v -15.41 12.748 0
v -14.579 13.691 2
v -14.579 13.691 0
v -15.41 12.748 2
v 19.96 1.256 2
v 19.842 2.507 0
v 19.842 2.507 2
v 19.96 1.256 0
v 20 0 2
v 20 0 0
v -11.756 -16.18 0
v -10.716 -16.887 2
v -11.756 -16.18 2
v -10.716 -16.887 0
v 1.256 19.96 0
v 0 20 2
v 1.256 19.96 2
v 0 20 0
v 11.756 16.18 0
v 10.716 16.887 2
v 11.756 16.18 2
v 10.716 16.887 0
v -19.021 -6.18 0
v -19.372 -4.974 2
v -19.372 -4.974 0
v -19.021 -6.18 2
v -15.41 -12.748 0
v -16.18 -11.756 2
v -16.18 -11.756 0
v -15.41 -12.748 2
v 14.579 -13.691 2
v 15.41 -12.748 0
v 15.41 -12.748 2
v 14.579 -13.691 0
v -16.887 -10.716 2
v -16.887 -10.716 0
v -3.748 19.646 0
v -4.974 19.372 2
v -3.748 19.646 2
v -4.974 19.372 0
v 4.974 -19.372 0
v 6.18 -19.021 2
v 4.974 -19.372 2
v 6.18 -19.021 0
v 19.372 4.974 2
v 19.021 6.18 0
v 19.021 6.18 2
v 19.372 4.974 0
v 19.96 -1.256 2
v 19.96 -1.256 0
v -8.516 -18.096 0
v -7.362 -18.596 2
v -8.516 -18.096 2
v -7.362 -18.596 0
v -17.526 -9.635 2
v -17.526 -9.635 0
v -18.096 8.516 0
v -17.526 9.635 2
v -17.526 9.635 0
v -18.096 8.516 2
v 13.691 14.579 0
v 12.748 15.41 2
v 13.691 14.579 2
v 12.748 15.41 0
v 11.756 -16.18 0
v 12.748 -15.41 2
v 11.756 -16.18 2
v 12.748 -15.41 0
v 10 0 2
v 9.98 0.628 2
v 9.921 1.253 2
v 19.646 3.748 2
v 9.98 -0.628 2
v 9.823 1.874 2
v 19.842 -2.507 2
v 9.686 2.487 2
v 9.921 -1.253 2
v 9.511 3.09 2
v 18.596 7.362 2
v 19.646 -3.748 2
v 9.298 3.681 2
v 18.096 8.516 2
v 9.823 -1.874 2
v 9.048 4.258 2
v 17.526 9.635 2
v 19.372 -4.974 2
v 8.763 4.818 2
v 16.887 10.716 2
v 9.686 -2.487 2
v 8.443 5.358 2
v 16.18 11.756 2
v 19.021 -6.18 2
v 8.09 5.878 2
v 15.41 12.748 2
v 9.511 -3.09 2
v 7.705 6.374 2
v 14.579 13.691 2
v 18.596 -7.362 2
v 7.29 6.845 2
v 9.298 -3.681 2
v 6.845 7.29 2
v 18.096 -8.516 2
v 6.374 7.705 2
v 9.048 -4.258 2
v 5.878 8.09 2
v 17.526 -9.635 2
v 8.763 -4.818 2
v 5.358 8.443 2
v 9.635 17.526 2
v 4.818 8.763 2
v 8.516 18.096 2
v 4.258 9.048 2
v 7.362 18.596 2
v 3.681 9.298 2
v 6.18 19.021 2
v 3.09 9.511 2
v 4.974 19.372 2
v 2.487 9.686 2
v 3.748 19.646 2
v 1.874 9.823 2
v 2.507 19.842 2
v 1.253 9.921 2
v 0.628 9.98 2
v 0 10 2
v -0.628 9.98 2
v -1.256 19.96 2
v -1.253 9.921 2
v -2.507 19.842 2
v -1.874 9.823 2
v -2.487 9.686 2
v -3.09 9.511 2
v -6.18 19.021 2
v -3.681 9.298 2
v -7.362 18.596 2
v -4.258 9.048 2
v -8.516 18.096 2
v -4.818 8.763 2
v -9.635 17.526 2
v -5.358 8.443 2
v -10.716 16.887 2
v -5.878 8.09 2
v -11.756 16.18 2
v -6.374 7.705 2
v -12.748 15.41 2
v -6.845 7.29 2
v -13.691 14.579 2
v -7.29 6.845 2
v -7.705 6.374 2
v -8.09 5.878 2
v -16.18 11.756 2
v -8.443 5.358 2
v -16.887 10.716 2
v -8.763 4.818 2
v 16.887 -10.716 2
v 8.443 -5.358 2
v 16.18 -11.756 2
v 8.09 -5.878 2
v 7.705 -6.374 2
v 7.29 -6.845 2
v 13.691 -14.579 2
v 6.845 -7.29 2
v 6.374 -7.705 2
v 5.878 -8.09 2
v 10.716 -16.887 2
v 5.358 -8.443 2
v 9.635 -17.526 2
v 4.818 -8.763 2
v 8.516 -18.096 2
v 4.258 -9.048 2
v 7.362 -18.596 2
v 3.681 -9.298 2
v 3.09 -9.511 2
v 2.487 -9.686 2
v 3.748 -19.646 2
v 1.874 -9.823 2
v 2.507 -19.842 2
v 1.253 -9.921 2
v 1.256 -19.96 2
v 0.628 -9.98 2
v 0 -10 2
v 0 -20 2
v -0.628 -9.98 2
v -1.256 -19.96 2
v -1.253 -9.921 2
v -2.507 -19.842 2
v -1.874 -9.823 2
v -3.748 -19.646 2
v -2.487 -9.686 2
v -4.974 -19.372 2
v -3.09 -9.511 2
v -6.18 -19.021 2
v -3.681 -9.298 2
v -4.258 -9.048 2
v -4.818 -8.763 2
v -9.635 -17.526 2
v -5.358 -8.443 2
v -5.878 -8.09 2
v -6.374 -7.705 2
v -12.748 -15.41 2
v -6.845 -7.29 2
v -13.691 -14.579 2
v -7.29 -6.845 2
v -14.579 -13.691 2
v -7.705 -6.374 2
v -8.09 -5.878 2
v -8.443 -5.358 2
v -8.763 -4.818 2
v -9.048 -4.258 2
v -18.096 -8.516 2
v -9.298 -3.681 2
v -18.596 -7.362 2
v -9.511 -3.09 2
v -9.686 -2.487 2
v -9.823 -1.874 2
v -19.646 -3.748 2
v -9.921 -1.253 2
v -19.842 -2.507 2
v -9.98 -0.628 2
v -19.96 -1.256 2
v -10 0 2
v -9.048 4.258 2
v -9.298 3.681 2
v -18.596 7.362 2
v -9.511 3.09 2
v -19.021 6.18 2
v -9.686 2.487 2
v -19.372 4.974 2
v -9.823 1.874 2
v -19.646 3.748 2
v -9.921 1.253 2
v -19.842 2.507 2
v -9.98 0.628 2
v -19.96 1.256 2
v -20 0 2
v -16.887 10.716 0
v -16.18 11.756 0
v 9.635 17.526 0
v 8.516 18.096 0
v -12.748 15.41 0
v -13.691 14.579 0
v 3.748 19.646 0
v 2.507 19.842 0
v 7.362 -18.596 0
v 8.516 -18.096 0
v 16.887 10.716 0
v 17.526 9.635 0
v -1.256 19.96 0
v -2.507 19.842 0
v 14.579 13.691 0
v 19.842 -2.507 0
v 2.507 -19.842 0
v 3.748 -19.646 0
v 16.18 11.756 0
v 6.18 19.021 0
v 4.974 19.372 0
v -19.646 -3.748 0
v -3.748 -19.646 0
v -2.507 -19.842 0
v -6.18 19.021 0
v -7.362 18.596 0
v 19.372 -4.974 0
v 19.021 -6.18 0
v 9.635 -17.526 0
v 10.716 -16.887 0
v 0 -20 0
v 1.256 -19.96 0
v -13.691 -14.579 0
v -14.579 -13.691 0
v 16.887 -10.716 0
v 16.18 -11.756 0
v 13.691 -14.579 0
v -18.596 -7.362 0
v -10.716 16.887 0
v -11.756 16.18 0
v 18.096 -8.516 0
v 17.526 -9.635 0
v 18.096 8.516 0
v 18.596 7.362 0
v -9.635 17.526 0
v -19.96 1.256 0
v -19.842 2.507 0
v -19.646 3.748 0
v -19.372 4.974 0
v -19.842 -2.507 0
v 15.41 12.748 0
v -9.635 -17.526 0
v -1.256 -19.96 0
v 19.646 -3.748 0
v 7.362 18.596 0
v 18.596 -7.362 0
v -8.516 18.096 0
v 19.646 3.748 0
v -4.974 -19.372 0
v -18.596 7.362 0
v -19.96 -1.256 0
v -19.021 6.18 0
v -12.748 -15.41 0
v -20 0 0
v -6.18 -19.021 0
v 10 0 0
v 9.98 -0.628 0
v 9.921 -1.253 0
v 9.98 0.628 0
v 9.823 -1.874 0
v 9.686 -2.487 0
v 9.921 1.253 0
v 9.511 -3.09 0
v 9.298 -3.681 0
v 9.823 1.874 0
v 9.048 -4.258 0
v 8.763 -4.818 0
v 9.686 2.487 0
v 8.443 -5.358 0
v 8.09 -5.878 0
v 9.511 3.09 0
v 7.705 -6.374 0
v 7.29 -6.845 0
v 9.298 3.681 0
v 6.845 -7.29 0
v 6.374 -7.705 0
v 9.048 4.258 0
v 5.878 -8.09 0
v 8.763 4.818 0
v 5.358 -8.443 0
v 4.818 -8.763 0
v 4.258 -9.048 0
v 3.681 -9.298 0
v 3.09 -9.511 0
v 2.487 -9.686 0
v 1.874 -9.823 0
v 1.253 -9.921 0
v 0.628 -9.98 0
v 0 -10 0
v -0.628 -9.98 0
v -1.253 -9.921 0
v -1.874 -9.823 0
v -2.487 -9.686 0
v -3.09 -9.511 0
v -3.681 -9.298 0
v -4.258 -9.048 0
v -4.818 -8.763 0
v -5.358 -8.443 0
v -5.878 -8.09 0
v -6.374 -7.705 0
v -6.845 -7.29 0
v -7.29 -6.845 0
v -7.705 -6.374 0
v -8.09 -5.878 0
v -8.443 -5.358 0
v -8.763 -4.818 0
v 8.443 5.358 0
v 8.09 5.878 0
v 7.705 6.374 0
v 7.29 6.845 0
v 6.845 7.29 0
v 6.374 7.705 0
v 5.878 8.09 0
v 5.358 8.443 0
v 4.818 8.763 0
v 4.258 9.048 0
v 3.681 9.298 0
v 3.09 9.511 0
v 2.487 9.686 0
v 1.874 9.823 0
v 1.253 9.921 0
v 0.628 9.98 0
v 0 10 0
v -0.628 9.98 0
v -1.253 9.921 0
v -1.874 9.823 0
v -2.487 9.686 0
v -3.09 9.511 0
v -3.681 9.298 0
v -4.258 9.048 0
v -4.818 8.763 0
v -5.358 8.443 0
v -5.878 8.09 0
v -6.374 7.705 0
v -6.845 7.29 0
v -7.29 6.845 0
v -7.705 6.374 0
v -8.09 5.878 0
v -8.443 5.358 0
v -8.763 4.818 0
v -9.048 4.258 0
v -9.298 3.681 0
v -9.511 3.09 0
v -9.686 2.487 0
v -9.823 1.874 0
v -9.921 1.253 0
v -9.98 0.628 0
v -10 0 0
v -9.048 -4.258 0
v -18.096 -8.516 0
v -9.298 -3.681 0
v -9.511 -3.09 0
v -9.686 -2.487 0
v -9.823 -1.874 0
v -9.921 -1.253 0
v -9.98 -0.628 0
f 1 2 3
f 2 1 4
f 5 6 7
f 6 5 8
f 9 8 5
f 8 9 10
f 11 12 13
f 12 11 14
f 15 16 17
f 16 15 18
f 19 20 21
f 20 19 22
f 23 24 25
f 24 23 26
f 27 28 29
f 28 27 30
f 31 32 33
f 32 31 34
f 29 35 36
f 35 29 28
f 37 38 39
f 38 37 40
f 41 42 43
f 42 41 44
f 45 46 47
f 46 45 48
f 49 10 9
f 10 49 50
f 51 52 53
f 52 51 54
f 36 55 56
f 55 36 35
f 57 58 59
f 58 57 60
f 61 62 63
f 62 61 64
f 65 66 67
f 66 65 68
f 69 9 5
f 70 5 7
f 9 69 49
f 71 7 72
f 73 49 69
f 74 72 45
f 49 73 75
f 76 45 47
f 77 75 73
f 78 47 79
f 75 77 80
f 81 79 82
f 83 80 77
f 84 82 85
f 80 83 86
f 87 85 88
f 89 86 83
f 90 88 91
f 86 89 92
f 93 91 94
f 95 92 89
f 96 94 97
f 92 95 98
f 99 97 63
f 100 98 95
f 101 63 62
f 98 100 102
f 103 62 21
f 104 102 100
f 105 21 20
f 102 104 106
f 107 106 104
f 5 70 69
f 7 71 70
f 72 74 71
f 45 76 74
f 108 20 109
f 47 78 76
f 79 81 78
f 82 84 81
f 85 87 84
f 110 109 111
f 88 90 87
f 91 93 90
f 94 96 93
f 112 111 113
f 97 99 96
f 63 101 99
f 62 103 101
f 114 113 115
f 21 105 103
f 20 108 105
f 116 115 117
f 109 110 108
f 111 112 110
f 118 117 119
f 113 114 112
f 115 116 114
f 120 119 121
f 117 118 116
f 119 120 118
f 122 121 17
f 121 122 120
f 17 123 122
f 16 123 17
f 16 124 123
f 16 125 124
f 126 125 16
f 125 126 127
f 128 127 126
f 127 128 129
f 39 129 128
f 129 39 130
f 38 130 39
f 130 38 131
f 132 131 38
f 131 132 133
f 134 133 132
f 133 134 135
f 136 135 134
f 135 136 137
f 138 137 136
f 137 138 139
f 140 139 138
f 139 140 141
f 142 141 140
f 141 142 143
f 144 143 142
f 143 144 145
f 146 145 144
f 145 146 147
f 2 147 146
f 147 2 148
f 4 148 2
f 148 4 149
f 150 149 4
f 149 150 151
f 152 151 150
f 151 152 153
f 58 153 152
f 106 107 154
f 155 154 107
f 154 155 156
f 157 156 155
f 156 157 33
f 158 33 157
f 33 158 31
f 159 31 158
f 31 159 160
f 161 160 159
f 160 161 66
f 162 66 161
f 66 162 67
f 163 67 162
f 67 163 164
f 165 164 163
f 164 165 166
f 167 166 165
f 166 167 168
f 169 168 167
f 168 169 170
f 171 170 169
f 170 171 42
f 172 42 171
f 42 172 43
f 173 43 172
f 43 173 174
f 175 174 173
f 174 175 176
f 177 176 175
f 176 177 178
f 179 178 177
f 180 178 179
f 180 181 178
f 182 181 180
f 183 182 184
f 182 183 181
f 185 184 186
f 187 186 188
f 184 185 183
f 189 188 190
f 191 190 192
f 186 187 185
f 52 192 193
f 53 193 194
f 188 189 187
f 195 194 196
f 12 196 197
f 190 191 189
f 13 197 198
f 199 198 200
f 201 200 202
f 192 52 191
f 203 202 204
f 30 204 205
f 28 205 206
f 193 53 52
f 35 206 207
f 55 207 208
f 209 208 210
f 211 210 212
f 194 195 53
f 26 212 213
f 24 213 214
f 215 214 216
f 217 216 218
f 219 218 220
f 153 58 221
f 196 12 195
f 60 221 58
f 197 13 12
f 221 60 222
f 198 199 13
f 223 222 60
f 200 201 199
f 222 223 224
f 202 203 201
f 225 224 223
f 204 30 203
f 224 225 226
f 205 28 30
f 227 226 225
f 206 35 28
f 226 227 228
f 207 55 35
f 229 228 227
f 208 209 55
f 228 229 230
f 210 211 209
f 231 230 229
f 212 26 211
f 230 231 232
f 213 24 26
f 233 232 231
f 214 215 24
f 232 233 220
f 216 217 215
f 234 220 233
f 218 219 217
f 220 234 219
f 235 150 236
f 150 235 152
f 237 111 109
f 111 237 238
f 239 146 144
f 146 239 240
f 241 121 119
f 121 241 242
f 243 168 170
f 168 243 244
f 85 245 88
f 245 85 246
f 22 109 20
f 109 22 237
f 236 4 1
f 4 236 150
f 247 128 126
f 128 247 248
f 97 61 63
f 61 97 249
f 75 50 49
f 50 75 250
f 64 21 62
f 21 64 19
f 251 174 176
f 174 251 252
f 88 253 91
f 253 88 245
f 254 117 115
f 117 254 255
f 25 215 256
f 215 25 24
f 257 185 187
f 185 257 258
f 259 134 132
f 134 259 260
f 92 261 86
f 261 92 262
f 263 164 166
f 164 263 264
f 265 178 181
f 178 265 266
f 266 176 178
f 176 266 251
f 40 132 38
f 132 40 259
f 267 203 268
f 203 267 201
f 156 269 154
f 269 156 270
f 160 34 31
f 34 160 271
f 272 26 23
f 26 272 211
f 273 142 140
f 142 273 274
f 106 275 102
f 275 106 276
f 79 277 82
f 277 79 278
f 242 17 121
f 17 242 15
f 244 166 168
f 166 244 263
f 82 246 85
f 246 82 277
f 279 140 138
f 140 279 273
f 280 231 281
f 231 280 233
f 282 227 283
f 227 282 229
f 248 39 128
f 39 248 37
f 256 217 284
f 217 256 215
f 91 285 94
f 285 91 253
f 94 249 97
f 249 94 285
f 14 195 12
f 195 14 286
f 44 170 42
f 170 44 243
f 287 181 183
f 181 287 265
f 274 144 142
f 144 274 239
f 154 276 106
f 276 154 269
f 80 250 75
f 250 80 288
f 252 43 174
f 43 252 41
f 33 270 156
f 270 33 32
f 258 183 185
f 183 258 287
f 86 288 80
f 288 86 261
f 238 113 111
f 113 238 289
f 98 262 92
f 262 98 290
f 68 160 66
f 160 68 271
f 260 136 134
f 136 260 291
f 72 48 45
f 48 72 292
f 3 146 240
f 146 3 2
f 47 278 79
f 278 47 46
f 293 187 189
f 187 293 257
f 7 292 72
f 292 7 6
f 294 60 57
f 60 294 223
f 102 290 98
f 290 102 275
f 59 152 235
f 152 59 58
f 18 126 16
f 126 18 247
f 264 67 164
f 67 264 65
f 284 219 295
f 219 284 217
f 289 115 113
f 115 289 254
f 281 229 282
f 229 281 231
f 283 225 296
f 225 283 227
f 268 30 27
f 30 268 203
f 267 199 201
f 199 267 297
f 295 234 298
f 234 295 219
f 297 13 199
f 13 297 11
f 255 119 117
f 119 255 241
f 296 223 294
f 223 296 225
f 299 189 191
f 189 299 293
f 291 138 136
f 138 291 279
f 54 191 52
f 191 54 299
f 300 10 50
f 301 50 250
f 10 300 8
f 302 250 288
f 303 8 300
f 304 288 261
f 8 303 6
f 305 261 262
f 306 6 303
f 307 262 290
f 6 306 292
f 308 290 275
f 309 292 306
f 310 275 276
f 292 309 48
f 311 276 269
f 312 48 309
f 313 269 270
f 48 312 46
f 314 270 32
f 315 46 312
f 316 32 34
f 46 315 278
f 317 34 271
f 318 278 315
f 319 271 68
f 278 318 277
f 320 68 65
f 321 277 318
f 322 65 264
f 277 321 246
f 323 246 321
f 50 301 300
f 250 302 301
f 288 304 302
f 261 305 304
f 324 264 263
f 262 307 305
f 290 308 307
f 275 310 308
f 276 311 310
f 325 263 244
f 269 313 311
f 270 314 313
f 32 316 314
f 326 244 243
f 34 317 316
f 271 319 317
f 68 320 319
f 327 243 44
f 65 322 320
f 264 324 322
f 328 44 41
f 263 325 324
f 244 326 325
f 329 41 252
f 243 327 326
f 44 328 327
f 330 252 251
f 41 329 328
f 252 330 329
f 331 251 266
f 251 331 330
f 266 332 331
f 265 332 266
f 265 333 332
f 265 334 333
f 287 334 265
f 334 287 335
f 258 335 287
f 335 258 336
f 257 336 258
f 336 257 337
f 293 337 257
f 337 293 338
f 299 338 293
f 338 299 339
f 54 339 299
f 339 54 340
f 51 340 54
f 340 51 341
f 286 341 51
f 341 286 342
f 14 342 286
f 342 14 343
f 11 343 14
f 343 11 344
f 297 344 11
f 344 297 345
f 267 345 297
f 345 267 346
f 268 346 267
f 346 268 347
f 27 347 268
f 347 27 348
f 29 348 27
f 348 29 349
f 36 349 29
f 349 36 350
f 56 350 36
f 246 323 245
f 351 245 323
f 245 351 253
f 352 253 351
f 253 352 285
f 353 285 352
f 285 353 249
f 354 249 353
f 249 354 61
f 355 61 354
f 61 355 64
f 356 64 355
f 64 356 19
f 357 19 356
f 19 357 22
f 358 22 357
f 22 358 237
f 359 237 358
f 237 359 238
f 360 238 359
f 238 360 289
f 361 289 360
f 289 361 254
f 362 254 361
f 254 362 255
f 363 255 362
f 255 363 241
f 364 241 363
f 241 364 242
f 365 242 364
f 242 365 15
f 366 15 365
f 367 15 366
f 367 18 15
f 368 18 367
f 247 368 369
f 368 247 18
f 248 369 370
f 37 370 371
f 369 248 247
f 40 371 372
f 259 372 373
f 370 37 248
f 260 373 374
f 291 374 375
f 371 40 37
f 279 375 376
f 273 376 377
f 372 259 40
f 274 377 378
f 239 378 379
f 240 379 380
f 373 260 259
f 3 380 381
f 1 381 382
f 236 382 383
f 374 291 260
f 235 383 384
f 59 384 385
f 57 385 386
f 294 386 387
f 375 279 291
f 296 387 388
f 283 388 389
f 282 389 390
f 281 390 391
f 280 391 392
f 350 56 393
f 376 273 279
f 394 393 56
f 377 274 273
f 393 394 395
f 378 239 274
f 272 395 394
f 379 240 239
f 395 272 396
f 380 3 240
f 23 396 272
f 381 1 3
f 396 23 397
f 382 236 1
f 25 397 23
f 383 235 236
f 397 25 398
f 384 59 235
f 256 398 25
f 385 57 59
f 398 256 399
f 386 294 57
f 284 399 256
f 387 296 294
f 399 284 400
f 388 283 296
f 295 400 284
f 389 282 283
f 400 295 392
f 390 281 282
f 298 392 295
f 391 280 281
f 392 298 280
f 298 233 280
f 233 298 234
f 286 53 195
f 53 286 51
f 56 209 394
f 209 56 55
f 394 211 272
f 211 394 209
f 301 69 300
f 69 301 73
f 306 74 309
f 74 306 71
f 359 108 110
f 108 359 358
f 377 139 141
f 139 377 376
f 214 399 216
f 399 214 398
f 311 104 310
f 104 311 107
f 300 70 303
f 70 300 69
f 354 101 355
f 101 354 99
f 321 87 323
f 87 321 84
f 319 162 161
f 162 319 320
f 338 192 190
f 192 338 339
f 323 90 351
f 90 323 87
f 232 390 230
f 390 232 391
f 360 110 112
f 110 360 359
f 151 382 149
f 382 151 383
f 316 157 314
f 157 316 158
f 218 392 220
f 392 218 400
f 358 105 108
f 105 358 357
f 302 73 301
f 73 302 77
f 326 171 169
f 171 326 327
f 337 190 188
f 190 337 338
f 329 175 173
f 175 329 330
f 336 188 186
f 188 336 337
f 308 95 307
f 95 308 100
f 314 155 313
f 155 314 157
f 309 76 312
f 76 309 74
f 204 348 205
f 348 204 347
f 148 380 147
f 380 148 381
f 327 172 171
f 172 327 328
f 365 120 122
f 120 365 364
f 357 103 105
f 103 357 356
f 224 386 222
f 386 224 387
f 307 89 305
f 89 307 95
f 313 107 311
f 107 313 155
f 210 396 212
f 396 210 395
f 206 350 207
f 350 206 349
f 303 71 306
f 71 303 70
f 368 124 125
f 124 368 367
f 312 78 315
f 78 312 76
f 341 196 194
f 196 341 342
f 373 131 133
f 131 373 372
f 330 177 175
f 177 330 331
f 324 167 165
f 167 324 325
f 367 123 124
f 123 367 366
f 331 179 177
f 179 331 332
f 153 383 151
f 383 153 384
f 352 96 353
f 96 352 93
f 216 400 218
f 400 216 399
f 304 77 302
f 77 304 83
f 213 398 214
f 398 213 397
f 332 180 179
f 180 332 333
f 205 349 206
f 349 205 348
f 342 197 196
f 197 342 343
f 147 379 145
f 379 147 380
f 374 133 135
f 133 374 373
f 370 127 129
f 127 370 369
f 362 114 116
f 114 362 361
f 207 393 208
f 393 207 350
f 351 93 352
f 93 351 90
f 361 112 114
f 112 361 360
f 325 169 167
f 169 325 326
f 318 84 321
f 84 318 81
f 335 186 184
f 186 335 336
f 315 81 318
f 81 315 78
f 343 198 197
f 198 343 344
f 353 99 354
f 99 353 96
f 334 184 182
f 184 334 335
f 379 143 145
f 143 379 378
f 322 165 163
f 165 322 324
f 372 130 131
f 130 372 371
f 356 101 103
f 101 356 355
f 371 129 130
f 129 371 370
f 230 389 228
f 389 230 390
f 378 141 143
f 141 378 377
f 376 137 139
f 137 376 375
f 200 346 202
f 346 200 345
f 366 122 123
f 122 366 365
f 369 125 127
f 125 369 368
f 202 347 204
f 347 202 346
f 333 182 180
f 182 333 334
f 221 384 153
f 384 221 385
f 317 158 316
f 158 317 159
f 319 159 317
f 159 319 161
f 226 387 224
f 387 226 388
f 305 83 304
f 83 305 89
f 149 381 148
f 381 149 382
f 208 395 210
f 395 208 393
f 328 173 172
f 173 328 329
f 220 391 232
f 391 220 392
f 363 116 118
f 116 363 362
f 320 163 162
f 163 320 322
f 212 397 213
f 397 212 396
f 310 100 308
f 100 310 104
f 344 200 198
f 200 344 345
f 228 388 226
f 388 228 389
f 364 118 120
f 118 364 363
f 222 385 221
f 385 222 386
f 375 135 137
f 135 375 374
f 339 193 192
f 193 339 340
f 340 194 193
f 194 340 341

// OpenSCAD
// Spacer Ring Component
// This code generates a flat, ring-shaped component with a smooth surface.

module spacer_ring() {
    difference() {
        // Outer cylinder
        cylinder(h = 2, r = 20, $fn = 100);
        // Inner cylinder (hollow center)
        translate([0, 0, -1]) // Slightly lower the inner cylinder to ensure clean subtraction
        cylinder(h = 4, r = 10, $fn = 100);
    }
}

// Render the spacer ring
spacer_ring();
